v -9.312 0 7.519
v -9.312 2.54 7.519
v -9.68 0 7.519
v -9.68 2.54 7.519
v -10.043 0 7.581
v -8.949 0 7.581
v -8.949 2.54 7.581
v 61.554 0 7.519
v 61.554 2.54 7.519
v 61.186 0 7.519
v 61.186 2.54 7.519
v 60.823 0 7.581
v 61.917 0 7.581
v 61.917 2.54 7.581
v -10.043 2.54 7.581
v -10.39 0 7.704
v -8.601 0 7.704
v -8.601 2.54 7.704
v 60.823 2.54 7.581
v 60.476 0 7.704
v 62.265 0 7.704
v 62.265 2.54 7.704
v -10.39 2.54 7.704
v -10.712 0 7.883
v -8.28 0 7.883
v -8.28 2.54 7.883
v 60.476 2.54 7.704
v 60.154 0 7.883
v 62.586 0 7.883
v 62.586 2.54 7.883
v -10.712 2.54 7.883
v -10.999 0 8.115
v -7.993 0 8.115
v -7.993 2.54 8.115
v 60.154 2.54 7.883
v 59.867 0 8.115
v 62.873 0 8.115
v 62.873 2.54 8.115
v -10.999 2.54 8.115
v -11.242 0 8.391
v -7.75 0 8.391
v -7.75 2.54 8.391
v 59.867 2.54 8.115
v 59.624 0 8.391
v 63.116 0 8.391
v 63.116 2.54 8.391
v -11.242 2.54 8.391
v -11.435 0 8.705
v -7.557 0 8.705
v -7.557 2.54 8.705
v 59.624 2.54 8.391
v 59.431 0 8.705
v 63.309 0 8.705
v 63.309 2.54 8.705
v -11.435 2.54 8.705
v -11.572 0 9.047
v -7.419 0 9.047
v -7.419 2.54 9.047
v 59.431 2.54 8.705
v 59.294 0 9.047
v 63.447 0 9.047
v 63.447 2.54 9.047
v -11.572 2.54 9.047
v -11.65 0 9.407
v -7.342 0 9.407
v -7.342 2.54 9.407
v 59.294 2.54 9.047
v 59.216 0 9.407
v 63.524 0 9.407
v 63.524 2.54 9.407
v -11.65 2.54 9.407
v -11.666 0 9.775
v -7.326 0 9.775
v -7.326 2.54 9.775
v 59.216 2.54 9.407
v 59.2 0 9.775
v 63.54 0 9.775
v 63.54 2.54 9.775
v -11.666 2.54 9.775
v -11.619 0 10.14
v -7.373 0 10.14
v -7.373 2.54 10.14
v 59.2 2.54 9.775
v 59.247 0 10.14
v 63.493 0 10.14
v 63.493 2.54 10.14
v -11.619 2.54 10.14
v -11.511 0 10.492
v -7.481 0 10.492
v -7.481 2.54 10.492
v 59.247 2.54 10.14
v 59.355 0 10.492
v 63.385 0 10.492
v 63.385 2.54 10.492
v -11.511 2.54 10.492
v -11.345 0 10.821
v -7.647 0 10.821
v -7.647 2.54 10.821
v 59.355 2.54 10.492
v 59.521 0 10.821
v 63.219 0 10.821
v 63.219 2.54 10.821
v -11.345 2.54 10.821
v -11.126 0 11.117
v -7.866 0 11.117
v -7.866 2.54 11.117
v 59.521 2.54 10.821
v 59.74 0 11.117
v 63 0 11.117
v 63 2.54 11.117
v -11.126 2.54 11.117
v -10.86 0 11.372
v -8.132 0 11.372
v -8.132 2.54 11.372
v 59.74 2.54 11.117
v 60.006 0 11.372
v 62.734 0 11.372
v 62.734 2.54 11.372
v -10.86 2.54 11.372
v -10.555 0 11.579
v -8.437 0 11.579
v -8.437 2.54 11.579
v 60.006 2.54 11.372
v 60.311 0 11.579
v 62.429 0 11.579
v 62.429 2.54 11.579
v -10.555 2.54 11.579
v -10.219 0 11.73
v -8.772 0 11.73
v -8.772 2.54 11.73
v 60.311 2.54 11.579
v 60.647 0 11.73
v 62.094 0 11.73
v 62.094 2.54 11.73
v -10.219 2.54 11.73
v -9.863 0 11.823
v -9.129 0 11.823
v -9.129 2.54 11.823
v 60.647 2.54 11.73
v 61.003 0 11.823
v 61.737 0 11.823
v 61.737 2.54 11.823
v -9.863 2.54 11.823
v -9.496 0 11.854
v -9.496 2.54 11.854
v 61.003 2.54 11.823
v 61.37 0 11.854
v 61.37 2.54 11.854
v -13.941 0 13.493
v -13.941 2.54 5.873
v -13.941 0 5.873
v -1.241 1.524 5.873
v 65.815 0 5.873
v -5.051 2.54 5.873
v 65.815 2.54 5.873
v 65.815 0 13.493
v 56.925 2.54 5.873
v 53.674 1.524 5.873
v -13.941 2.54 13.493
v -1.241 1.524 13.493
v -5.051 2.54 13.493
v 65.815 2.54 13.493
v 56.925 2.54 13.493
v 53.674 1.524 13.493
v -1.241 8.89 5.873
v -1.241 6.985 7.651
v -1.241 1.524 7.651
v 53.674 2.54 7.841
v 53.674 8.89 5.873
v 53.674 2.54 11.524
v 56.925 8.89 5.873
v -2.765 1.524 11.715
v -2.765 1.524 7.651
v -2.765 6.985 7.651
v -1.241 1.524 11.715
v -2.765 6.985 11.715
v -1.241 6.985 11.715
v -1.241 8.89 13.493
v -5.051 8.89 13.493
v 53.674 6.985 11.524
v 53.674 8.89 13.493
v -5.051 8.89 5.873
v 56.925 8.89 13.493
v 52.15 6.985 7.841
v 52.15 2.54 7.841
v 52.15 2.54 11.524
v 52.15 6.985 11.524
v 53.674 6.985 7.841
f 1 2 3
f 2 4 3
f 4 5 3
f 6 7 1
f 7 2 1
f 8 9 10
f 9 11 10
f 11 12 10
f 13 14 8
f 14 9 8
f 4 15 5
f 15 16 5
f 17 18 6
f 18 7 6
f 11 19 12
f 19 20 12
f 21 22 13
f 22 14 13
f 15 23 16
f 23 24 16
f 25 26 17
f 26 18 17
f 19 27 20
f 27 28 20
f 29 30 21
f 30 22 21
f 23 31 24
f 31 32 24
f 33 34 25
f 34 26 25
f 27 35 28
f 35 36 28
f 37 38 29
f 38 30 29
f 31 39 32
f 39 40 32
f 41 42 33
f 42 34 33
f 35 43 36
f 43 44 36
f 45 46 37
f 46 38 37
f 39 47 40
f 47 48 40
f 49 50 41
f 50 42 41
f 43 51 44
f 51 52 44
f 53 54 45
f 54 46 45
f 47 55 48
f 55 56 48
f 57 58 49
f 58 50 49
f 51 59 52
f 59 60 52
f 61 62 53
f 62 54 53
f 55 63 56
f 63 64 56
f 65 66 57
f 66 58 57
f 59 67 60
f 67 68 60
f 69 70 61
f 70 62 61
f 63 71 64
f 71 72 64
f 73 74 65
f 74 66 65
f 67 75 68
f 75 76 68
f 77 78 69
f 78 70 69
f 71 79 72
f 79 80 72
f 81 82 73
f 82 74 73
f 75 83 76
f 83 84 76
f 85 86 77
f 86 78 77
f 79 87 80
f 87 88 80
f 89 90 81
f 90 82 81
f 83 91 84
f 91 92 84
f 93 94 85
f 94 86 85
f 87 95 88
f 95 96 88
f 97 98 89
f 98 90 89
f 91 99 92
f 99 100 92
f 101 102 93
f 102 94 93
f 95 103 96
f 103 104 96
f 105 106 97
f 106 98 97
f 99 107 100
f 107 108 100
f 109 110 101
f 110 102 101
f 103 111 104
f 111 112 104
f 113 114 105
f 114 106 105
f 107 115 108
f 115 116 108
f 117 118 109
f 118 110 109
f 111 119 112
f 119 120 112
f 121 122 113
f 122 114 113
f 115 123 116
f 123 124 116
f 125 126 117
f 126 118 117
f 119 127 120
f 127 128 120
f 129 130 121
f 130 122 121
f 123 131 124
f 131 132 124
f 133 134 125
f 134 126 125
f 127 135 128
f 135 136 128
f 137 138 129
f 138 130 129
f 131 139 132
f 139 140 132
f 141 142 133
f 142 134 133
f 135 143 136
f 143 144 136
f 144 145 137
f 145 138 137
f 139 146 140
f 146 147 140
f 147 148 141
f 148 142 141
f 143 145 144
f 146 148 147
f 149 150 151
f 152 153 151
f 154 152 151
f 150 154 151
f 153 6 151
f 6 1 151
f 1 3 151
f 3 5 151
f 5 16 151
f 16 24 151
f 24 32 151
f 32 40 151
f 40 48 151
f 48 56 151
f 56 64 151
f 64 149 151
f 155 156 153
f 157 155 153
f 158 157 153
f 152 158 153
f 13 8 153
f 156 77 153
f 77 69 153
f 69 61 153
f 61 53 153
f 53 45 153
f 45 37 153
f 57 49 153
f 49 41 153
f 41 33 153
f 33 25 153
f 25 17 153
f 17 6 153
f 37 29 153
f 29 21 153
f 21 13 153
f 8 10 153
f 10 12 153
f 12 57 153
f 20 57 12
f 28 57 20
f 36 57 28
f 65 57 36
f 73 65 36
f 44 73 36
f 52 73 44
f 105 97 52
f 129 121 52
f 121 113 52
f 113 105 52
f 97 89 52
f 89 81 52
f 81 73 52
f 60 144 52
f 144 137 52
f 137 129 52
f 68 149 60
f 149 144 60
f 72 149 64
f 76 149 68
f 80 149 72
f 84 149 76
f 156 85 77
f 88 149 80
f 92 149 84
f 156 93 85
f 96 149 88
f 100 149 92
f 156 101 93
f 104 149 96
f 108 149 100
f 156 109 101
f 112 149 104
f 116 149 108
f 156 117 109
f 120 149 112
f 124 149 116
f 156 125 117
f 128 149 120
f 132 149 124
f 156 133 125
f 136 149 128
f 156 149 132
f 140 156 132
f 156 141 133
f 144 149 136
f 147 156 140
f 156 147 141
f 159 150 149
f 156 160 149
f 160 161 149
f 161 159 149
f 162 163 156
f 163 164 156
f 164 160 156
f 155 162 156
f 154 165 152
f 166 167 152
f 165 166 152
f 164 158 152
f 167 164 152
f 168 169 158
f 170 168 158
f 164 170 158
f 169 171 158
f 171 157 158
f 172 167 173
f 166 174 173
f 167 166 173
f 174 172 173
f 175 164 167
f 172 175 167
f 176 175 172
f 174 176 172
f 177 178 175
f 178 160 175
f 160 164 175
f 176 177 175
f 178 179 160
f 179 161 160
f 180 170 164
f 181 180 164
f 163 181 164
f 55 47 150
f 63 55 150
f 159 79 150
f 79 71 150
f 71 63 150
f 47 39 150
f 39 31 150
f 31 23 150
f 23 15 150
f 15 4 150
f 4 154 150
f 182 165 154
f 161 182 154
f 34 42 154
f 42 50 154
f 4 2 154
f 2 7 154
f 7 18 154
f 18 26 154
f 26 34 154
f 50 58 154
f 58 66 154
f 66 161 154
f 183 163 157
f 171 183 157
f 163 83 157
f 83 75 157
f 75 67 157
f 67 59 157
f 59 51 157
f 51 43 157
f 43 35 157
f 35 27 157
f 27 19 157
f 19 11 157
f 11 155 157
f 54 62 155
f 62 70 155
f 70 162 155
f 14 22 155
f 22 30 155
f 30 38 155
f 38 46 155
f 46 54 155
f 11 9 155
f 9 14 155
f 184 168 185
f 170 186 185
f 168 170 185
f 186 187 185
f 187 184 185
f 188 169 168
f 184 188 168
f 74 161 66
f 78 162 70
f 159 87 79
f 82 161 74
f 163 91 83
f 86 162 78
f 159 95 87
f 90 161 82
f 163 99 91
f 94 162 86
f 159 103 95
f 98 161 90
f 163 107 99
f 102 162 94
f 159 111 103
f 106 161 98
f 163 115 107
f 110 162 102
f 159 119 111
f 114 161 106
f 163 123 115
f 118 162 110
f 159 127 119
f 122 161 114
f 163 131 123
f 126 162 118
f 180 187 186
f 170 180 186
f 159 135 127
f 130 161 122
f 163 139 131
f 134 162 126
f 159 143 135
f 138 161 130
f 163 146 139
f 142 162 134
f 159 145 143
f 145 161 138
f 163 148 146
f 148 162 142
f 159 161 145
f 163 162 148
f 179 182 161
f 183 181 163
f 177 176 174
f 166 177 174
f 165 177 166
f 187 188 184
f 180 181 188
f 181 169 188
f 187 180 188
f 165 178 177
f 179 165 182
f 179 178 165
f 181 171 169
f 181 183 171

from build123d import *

# Parameters (mm, degrees)
SKETCH1_W           = 79.756
SKETCH1_H           = 7.62
BOSS_EXTRUDE1_DEPTH = 8.89
SKETCH2_W           = 8.89
SKETCH2_H           = 7.62
CUT_EXTRUDE1_DEPTH  = 6.35
SKETCH3_W           = 8.89
SKETCH3_H           = 7.62
CUT_EXTRUDE2_DEPTH  = 6.35
SKETCH4_W           = 54.9148
SKETCH4_H           = 7.62
CUT_EXTRUDE3_DEPTH  = 7.366
SKETCH5_W           = 4.064
SKETCH5_H           = 5.461
CUT_EXTRUDE4_DEPTH  = 1.524
SKETCH7_W           = 3.683
SKETCH7_H           = 4.445
BOSS_EXTRUDE2_DEPTH = 1.524
SKETCH8_R           = 2.1717
CUT_EXTRUDE5_DEPTH  = 2.54
SKETCH9_R           = 2.1717
CUT_EXTRUDE6_DEPTH  = 2.54


with BuildPart() as part:
    # Sketch1 → Boss-Extrude1 (new body)
    with BuildSketch(Plane(origin=(0, 0, 0), x_dir=(1, 0, 0), z_dir=(0, 1, 0))):
        with Locations((25.937163647, -9.682646588)):
            Rectangle(SKETCH1_W, SKETCH1_H)
    extrude(amount=BOSS_EXTRUDE1_DEPTH)

    # Sketch2 → Cut-Extrude1 (cut)
    with BuildSketch(Plane(origin=(0, 8.89, 0), x_dir=(1, 0, 0), z_dir=(0, 1, 0))):
        with Locations((-9.495836353, -9.682646588)):
            Rectangle(SKETCH2_W, SKETCH2_H)
    extrude(amount=-CUT_EXTRUDE1_DEPTH, mode=Mode.SUBTRACT)

    # Sketch3 → Cut-Extrude2 (cut)
    with BuildSketch(Plane(origin=(0, 8.89, 0), x_dir=(1, 0, 0), z_dir=(0, 1, 0))):
        with Locations((61.370163647, -9.682646588)):
            Rectangle(SKETCH3_W, SKETCH3_H)
    extrude(amount=-CUT_EXTRUDE2_DEPTH, mode=Mode.SUBTRACT)

    # Sketch4 → Cut-Extrude3 (cut)
    with BuildSketch(Plane(origin=(0, 8.89, 0), x_dir=(1, 0, 0), z_dir=(0, 1, 0))):
        with Locations((26.216563647, -9.682646588)):
            Rectangle(SKETCH4_W, SKETCH4_H)
    extrude(amount=-CUT_EXTRUDE3_DEPTH, mode=Mode.SUBTRACT)

    # Sketch5 → Cut-Extrude4 (cut)
    with BuildSketch(Plane(origin=(-1.240836353, 0, 0), x_dir=(0, 0, -1), z_dir=(1, 0, 0))):
        with Locations((-9.682646588, 4.2545)):
            Rectangle(SKETCH5_W, SKETCH5_H)
    extrude(amount=-CUT_EXTRUDE4_DEPTH, mode=Mode.SUBTRACT)

    # Sketch7 → Boss-Extrude2 (add)
    with BuildSketch(Plane.ZY.offset(-53.673963647)):
        with Locations((9.682646588, 4.7625)):
            Rectangle(SKETCH7_W, SKETCH7_H)
    extrude(amount=BOSS_EXTRUDE2_DEPTH)

    # Sketch8 → Cut-Extrude5 (cut)
    with BuildSketch(Plane(origin=(0, 2.54, 0), x_dir=(1, 0, 0), z_dir=(0, 1, 0))):
        with Locations(Location((-9.495836353, -9.682646588, 0), (0, 0, 270))):
            Circle(SKETCH8_R)
    extrude(amount=-CUT_EXTRUDE5_DEPTH, mode=Mode.SUBTRACT)

    # Sketch9 → Cut-Extrude6 (cut)
    with BuildSketch(Plane(origin=(0, 2.54, 0), x_dir=(1, 0, 0), z_dir=(0, 1, 0))):
        with Locations(Location((61.370163647, -9.682646588, 0), (0, 0, 270))):
            Circle(SKETCH9_R)
    extrude(amount=-CUT_EXTRUDE6_DEPTH, mode=Mode.SUBTRACT)


solid = part.part
